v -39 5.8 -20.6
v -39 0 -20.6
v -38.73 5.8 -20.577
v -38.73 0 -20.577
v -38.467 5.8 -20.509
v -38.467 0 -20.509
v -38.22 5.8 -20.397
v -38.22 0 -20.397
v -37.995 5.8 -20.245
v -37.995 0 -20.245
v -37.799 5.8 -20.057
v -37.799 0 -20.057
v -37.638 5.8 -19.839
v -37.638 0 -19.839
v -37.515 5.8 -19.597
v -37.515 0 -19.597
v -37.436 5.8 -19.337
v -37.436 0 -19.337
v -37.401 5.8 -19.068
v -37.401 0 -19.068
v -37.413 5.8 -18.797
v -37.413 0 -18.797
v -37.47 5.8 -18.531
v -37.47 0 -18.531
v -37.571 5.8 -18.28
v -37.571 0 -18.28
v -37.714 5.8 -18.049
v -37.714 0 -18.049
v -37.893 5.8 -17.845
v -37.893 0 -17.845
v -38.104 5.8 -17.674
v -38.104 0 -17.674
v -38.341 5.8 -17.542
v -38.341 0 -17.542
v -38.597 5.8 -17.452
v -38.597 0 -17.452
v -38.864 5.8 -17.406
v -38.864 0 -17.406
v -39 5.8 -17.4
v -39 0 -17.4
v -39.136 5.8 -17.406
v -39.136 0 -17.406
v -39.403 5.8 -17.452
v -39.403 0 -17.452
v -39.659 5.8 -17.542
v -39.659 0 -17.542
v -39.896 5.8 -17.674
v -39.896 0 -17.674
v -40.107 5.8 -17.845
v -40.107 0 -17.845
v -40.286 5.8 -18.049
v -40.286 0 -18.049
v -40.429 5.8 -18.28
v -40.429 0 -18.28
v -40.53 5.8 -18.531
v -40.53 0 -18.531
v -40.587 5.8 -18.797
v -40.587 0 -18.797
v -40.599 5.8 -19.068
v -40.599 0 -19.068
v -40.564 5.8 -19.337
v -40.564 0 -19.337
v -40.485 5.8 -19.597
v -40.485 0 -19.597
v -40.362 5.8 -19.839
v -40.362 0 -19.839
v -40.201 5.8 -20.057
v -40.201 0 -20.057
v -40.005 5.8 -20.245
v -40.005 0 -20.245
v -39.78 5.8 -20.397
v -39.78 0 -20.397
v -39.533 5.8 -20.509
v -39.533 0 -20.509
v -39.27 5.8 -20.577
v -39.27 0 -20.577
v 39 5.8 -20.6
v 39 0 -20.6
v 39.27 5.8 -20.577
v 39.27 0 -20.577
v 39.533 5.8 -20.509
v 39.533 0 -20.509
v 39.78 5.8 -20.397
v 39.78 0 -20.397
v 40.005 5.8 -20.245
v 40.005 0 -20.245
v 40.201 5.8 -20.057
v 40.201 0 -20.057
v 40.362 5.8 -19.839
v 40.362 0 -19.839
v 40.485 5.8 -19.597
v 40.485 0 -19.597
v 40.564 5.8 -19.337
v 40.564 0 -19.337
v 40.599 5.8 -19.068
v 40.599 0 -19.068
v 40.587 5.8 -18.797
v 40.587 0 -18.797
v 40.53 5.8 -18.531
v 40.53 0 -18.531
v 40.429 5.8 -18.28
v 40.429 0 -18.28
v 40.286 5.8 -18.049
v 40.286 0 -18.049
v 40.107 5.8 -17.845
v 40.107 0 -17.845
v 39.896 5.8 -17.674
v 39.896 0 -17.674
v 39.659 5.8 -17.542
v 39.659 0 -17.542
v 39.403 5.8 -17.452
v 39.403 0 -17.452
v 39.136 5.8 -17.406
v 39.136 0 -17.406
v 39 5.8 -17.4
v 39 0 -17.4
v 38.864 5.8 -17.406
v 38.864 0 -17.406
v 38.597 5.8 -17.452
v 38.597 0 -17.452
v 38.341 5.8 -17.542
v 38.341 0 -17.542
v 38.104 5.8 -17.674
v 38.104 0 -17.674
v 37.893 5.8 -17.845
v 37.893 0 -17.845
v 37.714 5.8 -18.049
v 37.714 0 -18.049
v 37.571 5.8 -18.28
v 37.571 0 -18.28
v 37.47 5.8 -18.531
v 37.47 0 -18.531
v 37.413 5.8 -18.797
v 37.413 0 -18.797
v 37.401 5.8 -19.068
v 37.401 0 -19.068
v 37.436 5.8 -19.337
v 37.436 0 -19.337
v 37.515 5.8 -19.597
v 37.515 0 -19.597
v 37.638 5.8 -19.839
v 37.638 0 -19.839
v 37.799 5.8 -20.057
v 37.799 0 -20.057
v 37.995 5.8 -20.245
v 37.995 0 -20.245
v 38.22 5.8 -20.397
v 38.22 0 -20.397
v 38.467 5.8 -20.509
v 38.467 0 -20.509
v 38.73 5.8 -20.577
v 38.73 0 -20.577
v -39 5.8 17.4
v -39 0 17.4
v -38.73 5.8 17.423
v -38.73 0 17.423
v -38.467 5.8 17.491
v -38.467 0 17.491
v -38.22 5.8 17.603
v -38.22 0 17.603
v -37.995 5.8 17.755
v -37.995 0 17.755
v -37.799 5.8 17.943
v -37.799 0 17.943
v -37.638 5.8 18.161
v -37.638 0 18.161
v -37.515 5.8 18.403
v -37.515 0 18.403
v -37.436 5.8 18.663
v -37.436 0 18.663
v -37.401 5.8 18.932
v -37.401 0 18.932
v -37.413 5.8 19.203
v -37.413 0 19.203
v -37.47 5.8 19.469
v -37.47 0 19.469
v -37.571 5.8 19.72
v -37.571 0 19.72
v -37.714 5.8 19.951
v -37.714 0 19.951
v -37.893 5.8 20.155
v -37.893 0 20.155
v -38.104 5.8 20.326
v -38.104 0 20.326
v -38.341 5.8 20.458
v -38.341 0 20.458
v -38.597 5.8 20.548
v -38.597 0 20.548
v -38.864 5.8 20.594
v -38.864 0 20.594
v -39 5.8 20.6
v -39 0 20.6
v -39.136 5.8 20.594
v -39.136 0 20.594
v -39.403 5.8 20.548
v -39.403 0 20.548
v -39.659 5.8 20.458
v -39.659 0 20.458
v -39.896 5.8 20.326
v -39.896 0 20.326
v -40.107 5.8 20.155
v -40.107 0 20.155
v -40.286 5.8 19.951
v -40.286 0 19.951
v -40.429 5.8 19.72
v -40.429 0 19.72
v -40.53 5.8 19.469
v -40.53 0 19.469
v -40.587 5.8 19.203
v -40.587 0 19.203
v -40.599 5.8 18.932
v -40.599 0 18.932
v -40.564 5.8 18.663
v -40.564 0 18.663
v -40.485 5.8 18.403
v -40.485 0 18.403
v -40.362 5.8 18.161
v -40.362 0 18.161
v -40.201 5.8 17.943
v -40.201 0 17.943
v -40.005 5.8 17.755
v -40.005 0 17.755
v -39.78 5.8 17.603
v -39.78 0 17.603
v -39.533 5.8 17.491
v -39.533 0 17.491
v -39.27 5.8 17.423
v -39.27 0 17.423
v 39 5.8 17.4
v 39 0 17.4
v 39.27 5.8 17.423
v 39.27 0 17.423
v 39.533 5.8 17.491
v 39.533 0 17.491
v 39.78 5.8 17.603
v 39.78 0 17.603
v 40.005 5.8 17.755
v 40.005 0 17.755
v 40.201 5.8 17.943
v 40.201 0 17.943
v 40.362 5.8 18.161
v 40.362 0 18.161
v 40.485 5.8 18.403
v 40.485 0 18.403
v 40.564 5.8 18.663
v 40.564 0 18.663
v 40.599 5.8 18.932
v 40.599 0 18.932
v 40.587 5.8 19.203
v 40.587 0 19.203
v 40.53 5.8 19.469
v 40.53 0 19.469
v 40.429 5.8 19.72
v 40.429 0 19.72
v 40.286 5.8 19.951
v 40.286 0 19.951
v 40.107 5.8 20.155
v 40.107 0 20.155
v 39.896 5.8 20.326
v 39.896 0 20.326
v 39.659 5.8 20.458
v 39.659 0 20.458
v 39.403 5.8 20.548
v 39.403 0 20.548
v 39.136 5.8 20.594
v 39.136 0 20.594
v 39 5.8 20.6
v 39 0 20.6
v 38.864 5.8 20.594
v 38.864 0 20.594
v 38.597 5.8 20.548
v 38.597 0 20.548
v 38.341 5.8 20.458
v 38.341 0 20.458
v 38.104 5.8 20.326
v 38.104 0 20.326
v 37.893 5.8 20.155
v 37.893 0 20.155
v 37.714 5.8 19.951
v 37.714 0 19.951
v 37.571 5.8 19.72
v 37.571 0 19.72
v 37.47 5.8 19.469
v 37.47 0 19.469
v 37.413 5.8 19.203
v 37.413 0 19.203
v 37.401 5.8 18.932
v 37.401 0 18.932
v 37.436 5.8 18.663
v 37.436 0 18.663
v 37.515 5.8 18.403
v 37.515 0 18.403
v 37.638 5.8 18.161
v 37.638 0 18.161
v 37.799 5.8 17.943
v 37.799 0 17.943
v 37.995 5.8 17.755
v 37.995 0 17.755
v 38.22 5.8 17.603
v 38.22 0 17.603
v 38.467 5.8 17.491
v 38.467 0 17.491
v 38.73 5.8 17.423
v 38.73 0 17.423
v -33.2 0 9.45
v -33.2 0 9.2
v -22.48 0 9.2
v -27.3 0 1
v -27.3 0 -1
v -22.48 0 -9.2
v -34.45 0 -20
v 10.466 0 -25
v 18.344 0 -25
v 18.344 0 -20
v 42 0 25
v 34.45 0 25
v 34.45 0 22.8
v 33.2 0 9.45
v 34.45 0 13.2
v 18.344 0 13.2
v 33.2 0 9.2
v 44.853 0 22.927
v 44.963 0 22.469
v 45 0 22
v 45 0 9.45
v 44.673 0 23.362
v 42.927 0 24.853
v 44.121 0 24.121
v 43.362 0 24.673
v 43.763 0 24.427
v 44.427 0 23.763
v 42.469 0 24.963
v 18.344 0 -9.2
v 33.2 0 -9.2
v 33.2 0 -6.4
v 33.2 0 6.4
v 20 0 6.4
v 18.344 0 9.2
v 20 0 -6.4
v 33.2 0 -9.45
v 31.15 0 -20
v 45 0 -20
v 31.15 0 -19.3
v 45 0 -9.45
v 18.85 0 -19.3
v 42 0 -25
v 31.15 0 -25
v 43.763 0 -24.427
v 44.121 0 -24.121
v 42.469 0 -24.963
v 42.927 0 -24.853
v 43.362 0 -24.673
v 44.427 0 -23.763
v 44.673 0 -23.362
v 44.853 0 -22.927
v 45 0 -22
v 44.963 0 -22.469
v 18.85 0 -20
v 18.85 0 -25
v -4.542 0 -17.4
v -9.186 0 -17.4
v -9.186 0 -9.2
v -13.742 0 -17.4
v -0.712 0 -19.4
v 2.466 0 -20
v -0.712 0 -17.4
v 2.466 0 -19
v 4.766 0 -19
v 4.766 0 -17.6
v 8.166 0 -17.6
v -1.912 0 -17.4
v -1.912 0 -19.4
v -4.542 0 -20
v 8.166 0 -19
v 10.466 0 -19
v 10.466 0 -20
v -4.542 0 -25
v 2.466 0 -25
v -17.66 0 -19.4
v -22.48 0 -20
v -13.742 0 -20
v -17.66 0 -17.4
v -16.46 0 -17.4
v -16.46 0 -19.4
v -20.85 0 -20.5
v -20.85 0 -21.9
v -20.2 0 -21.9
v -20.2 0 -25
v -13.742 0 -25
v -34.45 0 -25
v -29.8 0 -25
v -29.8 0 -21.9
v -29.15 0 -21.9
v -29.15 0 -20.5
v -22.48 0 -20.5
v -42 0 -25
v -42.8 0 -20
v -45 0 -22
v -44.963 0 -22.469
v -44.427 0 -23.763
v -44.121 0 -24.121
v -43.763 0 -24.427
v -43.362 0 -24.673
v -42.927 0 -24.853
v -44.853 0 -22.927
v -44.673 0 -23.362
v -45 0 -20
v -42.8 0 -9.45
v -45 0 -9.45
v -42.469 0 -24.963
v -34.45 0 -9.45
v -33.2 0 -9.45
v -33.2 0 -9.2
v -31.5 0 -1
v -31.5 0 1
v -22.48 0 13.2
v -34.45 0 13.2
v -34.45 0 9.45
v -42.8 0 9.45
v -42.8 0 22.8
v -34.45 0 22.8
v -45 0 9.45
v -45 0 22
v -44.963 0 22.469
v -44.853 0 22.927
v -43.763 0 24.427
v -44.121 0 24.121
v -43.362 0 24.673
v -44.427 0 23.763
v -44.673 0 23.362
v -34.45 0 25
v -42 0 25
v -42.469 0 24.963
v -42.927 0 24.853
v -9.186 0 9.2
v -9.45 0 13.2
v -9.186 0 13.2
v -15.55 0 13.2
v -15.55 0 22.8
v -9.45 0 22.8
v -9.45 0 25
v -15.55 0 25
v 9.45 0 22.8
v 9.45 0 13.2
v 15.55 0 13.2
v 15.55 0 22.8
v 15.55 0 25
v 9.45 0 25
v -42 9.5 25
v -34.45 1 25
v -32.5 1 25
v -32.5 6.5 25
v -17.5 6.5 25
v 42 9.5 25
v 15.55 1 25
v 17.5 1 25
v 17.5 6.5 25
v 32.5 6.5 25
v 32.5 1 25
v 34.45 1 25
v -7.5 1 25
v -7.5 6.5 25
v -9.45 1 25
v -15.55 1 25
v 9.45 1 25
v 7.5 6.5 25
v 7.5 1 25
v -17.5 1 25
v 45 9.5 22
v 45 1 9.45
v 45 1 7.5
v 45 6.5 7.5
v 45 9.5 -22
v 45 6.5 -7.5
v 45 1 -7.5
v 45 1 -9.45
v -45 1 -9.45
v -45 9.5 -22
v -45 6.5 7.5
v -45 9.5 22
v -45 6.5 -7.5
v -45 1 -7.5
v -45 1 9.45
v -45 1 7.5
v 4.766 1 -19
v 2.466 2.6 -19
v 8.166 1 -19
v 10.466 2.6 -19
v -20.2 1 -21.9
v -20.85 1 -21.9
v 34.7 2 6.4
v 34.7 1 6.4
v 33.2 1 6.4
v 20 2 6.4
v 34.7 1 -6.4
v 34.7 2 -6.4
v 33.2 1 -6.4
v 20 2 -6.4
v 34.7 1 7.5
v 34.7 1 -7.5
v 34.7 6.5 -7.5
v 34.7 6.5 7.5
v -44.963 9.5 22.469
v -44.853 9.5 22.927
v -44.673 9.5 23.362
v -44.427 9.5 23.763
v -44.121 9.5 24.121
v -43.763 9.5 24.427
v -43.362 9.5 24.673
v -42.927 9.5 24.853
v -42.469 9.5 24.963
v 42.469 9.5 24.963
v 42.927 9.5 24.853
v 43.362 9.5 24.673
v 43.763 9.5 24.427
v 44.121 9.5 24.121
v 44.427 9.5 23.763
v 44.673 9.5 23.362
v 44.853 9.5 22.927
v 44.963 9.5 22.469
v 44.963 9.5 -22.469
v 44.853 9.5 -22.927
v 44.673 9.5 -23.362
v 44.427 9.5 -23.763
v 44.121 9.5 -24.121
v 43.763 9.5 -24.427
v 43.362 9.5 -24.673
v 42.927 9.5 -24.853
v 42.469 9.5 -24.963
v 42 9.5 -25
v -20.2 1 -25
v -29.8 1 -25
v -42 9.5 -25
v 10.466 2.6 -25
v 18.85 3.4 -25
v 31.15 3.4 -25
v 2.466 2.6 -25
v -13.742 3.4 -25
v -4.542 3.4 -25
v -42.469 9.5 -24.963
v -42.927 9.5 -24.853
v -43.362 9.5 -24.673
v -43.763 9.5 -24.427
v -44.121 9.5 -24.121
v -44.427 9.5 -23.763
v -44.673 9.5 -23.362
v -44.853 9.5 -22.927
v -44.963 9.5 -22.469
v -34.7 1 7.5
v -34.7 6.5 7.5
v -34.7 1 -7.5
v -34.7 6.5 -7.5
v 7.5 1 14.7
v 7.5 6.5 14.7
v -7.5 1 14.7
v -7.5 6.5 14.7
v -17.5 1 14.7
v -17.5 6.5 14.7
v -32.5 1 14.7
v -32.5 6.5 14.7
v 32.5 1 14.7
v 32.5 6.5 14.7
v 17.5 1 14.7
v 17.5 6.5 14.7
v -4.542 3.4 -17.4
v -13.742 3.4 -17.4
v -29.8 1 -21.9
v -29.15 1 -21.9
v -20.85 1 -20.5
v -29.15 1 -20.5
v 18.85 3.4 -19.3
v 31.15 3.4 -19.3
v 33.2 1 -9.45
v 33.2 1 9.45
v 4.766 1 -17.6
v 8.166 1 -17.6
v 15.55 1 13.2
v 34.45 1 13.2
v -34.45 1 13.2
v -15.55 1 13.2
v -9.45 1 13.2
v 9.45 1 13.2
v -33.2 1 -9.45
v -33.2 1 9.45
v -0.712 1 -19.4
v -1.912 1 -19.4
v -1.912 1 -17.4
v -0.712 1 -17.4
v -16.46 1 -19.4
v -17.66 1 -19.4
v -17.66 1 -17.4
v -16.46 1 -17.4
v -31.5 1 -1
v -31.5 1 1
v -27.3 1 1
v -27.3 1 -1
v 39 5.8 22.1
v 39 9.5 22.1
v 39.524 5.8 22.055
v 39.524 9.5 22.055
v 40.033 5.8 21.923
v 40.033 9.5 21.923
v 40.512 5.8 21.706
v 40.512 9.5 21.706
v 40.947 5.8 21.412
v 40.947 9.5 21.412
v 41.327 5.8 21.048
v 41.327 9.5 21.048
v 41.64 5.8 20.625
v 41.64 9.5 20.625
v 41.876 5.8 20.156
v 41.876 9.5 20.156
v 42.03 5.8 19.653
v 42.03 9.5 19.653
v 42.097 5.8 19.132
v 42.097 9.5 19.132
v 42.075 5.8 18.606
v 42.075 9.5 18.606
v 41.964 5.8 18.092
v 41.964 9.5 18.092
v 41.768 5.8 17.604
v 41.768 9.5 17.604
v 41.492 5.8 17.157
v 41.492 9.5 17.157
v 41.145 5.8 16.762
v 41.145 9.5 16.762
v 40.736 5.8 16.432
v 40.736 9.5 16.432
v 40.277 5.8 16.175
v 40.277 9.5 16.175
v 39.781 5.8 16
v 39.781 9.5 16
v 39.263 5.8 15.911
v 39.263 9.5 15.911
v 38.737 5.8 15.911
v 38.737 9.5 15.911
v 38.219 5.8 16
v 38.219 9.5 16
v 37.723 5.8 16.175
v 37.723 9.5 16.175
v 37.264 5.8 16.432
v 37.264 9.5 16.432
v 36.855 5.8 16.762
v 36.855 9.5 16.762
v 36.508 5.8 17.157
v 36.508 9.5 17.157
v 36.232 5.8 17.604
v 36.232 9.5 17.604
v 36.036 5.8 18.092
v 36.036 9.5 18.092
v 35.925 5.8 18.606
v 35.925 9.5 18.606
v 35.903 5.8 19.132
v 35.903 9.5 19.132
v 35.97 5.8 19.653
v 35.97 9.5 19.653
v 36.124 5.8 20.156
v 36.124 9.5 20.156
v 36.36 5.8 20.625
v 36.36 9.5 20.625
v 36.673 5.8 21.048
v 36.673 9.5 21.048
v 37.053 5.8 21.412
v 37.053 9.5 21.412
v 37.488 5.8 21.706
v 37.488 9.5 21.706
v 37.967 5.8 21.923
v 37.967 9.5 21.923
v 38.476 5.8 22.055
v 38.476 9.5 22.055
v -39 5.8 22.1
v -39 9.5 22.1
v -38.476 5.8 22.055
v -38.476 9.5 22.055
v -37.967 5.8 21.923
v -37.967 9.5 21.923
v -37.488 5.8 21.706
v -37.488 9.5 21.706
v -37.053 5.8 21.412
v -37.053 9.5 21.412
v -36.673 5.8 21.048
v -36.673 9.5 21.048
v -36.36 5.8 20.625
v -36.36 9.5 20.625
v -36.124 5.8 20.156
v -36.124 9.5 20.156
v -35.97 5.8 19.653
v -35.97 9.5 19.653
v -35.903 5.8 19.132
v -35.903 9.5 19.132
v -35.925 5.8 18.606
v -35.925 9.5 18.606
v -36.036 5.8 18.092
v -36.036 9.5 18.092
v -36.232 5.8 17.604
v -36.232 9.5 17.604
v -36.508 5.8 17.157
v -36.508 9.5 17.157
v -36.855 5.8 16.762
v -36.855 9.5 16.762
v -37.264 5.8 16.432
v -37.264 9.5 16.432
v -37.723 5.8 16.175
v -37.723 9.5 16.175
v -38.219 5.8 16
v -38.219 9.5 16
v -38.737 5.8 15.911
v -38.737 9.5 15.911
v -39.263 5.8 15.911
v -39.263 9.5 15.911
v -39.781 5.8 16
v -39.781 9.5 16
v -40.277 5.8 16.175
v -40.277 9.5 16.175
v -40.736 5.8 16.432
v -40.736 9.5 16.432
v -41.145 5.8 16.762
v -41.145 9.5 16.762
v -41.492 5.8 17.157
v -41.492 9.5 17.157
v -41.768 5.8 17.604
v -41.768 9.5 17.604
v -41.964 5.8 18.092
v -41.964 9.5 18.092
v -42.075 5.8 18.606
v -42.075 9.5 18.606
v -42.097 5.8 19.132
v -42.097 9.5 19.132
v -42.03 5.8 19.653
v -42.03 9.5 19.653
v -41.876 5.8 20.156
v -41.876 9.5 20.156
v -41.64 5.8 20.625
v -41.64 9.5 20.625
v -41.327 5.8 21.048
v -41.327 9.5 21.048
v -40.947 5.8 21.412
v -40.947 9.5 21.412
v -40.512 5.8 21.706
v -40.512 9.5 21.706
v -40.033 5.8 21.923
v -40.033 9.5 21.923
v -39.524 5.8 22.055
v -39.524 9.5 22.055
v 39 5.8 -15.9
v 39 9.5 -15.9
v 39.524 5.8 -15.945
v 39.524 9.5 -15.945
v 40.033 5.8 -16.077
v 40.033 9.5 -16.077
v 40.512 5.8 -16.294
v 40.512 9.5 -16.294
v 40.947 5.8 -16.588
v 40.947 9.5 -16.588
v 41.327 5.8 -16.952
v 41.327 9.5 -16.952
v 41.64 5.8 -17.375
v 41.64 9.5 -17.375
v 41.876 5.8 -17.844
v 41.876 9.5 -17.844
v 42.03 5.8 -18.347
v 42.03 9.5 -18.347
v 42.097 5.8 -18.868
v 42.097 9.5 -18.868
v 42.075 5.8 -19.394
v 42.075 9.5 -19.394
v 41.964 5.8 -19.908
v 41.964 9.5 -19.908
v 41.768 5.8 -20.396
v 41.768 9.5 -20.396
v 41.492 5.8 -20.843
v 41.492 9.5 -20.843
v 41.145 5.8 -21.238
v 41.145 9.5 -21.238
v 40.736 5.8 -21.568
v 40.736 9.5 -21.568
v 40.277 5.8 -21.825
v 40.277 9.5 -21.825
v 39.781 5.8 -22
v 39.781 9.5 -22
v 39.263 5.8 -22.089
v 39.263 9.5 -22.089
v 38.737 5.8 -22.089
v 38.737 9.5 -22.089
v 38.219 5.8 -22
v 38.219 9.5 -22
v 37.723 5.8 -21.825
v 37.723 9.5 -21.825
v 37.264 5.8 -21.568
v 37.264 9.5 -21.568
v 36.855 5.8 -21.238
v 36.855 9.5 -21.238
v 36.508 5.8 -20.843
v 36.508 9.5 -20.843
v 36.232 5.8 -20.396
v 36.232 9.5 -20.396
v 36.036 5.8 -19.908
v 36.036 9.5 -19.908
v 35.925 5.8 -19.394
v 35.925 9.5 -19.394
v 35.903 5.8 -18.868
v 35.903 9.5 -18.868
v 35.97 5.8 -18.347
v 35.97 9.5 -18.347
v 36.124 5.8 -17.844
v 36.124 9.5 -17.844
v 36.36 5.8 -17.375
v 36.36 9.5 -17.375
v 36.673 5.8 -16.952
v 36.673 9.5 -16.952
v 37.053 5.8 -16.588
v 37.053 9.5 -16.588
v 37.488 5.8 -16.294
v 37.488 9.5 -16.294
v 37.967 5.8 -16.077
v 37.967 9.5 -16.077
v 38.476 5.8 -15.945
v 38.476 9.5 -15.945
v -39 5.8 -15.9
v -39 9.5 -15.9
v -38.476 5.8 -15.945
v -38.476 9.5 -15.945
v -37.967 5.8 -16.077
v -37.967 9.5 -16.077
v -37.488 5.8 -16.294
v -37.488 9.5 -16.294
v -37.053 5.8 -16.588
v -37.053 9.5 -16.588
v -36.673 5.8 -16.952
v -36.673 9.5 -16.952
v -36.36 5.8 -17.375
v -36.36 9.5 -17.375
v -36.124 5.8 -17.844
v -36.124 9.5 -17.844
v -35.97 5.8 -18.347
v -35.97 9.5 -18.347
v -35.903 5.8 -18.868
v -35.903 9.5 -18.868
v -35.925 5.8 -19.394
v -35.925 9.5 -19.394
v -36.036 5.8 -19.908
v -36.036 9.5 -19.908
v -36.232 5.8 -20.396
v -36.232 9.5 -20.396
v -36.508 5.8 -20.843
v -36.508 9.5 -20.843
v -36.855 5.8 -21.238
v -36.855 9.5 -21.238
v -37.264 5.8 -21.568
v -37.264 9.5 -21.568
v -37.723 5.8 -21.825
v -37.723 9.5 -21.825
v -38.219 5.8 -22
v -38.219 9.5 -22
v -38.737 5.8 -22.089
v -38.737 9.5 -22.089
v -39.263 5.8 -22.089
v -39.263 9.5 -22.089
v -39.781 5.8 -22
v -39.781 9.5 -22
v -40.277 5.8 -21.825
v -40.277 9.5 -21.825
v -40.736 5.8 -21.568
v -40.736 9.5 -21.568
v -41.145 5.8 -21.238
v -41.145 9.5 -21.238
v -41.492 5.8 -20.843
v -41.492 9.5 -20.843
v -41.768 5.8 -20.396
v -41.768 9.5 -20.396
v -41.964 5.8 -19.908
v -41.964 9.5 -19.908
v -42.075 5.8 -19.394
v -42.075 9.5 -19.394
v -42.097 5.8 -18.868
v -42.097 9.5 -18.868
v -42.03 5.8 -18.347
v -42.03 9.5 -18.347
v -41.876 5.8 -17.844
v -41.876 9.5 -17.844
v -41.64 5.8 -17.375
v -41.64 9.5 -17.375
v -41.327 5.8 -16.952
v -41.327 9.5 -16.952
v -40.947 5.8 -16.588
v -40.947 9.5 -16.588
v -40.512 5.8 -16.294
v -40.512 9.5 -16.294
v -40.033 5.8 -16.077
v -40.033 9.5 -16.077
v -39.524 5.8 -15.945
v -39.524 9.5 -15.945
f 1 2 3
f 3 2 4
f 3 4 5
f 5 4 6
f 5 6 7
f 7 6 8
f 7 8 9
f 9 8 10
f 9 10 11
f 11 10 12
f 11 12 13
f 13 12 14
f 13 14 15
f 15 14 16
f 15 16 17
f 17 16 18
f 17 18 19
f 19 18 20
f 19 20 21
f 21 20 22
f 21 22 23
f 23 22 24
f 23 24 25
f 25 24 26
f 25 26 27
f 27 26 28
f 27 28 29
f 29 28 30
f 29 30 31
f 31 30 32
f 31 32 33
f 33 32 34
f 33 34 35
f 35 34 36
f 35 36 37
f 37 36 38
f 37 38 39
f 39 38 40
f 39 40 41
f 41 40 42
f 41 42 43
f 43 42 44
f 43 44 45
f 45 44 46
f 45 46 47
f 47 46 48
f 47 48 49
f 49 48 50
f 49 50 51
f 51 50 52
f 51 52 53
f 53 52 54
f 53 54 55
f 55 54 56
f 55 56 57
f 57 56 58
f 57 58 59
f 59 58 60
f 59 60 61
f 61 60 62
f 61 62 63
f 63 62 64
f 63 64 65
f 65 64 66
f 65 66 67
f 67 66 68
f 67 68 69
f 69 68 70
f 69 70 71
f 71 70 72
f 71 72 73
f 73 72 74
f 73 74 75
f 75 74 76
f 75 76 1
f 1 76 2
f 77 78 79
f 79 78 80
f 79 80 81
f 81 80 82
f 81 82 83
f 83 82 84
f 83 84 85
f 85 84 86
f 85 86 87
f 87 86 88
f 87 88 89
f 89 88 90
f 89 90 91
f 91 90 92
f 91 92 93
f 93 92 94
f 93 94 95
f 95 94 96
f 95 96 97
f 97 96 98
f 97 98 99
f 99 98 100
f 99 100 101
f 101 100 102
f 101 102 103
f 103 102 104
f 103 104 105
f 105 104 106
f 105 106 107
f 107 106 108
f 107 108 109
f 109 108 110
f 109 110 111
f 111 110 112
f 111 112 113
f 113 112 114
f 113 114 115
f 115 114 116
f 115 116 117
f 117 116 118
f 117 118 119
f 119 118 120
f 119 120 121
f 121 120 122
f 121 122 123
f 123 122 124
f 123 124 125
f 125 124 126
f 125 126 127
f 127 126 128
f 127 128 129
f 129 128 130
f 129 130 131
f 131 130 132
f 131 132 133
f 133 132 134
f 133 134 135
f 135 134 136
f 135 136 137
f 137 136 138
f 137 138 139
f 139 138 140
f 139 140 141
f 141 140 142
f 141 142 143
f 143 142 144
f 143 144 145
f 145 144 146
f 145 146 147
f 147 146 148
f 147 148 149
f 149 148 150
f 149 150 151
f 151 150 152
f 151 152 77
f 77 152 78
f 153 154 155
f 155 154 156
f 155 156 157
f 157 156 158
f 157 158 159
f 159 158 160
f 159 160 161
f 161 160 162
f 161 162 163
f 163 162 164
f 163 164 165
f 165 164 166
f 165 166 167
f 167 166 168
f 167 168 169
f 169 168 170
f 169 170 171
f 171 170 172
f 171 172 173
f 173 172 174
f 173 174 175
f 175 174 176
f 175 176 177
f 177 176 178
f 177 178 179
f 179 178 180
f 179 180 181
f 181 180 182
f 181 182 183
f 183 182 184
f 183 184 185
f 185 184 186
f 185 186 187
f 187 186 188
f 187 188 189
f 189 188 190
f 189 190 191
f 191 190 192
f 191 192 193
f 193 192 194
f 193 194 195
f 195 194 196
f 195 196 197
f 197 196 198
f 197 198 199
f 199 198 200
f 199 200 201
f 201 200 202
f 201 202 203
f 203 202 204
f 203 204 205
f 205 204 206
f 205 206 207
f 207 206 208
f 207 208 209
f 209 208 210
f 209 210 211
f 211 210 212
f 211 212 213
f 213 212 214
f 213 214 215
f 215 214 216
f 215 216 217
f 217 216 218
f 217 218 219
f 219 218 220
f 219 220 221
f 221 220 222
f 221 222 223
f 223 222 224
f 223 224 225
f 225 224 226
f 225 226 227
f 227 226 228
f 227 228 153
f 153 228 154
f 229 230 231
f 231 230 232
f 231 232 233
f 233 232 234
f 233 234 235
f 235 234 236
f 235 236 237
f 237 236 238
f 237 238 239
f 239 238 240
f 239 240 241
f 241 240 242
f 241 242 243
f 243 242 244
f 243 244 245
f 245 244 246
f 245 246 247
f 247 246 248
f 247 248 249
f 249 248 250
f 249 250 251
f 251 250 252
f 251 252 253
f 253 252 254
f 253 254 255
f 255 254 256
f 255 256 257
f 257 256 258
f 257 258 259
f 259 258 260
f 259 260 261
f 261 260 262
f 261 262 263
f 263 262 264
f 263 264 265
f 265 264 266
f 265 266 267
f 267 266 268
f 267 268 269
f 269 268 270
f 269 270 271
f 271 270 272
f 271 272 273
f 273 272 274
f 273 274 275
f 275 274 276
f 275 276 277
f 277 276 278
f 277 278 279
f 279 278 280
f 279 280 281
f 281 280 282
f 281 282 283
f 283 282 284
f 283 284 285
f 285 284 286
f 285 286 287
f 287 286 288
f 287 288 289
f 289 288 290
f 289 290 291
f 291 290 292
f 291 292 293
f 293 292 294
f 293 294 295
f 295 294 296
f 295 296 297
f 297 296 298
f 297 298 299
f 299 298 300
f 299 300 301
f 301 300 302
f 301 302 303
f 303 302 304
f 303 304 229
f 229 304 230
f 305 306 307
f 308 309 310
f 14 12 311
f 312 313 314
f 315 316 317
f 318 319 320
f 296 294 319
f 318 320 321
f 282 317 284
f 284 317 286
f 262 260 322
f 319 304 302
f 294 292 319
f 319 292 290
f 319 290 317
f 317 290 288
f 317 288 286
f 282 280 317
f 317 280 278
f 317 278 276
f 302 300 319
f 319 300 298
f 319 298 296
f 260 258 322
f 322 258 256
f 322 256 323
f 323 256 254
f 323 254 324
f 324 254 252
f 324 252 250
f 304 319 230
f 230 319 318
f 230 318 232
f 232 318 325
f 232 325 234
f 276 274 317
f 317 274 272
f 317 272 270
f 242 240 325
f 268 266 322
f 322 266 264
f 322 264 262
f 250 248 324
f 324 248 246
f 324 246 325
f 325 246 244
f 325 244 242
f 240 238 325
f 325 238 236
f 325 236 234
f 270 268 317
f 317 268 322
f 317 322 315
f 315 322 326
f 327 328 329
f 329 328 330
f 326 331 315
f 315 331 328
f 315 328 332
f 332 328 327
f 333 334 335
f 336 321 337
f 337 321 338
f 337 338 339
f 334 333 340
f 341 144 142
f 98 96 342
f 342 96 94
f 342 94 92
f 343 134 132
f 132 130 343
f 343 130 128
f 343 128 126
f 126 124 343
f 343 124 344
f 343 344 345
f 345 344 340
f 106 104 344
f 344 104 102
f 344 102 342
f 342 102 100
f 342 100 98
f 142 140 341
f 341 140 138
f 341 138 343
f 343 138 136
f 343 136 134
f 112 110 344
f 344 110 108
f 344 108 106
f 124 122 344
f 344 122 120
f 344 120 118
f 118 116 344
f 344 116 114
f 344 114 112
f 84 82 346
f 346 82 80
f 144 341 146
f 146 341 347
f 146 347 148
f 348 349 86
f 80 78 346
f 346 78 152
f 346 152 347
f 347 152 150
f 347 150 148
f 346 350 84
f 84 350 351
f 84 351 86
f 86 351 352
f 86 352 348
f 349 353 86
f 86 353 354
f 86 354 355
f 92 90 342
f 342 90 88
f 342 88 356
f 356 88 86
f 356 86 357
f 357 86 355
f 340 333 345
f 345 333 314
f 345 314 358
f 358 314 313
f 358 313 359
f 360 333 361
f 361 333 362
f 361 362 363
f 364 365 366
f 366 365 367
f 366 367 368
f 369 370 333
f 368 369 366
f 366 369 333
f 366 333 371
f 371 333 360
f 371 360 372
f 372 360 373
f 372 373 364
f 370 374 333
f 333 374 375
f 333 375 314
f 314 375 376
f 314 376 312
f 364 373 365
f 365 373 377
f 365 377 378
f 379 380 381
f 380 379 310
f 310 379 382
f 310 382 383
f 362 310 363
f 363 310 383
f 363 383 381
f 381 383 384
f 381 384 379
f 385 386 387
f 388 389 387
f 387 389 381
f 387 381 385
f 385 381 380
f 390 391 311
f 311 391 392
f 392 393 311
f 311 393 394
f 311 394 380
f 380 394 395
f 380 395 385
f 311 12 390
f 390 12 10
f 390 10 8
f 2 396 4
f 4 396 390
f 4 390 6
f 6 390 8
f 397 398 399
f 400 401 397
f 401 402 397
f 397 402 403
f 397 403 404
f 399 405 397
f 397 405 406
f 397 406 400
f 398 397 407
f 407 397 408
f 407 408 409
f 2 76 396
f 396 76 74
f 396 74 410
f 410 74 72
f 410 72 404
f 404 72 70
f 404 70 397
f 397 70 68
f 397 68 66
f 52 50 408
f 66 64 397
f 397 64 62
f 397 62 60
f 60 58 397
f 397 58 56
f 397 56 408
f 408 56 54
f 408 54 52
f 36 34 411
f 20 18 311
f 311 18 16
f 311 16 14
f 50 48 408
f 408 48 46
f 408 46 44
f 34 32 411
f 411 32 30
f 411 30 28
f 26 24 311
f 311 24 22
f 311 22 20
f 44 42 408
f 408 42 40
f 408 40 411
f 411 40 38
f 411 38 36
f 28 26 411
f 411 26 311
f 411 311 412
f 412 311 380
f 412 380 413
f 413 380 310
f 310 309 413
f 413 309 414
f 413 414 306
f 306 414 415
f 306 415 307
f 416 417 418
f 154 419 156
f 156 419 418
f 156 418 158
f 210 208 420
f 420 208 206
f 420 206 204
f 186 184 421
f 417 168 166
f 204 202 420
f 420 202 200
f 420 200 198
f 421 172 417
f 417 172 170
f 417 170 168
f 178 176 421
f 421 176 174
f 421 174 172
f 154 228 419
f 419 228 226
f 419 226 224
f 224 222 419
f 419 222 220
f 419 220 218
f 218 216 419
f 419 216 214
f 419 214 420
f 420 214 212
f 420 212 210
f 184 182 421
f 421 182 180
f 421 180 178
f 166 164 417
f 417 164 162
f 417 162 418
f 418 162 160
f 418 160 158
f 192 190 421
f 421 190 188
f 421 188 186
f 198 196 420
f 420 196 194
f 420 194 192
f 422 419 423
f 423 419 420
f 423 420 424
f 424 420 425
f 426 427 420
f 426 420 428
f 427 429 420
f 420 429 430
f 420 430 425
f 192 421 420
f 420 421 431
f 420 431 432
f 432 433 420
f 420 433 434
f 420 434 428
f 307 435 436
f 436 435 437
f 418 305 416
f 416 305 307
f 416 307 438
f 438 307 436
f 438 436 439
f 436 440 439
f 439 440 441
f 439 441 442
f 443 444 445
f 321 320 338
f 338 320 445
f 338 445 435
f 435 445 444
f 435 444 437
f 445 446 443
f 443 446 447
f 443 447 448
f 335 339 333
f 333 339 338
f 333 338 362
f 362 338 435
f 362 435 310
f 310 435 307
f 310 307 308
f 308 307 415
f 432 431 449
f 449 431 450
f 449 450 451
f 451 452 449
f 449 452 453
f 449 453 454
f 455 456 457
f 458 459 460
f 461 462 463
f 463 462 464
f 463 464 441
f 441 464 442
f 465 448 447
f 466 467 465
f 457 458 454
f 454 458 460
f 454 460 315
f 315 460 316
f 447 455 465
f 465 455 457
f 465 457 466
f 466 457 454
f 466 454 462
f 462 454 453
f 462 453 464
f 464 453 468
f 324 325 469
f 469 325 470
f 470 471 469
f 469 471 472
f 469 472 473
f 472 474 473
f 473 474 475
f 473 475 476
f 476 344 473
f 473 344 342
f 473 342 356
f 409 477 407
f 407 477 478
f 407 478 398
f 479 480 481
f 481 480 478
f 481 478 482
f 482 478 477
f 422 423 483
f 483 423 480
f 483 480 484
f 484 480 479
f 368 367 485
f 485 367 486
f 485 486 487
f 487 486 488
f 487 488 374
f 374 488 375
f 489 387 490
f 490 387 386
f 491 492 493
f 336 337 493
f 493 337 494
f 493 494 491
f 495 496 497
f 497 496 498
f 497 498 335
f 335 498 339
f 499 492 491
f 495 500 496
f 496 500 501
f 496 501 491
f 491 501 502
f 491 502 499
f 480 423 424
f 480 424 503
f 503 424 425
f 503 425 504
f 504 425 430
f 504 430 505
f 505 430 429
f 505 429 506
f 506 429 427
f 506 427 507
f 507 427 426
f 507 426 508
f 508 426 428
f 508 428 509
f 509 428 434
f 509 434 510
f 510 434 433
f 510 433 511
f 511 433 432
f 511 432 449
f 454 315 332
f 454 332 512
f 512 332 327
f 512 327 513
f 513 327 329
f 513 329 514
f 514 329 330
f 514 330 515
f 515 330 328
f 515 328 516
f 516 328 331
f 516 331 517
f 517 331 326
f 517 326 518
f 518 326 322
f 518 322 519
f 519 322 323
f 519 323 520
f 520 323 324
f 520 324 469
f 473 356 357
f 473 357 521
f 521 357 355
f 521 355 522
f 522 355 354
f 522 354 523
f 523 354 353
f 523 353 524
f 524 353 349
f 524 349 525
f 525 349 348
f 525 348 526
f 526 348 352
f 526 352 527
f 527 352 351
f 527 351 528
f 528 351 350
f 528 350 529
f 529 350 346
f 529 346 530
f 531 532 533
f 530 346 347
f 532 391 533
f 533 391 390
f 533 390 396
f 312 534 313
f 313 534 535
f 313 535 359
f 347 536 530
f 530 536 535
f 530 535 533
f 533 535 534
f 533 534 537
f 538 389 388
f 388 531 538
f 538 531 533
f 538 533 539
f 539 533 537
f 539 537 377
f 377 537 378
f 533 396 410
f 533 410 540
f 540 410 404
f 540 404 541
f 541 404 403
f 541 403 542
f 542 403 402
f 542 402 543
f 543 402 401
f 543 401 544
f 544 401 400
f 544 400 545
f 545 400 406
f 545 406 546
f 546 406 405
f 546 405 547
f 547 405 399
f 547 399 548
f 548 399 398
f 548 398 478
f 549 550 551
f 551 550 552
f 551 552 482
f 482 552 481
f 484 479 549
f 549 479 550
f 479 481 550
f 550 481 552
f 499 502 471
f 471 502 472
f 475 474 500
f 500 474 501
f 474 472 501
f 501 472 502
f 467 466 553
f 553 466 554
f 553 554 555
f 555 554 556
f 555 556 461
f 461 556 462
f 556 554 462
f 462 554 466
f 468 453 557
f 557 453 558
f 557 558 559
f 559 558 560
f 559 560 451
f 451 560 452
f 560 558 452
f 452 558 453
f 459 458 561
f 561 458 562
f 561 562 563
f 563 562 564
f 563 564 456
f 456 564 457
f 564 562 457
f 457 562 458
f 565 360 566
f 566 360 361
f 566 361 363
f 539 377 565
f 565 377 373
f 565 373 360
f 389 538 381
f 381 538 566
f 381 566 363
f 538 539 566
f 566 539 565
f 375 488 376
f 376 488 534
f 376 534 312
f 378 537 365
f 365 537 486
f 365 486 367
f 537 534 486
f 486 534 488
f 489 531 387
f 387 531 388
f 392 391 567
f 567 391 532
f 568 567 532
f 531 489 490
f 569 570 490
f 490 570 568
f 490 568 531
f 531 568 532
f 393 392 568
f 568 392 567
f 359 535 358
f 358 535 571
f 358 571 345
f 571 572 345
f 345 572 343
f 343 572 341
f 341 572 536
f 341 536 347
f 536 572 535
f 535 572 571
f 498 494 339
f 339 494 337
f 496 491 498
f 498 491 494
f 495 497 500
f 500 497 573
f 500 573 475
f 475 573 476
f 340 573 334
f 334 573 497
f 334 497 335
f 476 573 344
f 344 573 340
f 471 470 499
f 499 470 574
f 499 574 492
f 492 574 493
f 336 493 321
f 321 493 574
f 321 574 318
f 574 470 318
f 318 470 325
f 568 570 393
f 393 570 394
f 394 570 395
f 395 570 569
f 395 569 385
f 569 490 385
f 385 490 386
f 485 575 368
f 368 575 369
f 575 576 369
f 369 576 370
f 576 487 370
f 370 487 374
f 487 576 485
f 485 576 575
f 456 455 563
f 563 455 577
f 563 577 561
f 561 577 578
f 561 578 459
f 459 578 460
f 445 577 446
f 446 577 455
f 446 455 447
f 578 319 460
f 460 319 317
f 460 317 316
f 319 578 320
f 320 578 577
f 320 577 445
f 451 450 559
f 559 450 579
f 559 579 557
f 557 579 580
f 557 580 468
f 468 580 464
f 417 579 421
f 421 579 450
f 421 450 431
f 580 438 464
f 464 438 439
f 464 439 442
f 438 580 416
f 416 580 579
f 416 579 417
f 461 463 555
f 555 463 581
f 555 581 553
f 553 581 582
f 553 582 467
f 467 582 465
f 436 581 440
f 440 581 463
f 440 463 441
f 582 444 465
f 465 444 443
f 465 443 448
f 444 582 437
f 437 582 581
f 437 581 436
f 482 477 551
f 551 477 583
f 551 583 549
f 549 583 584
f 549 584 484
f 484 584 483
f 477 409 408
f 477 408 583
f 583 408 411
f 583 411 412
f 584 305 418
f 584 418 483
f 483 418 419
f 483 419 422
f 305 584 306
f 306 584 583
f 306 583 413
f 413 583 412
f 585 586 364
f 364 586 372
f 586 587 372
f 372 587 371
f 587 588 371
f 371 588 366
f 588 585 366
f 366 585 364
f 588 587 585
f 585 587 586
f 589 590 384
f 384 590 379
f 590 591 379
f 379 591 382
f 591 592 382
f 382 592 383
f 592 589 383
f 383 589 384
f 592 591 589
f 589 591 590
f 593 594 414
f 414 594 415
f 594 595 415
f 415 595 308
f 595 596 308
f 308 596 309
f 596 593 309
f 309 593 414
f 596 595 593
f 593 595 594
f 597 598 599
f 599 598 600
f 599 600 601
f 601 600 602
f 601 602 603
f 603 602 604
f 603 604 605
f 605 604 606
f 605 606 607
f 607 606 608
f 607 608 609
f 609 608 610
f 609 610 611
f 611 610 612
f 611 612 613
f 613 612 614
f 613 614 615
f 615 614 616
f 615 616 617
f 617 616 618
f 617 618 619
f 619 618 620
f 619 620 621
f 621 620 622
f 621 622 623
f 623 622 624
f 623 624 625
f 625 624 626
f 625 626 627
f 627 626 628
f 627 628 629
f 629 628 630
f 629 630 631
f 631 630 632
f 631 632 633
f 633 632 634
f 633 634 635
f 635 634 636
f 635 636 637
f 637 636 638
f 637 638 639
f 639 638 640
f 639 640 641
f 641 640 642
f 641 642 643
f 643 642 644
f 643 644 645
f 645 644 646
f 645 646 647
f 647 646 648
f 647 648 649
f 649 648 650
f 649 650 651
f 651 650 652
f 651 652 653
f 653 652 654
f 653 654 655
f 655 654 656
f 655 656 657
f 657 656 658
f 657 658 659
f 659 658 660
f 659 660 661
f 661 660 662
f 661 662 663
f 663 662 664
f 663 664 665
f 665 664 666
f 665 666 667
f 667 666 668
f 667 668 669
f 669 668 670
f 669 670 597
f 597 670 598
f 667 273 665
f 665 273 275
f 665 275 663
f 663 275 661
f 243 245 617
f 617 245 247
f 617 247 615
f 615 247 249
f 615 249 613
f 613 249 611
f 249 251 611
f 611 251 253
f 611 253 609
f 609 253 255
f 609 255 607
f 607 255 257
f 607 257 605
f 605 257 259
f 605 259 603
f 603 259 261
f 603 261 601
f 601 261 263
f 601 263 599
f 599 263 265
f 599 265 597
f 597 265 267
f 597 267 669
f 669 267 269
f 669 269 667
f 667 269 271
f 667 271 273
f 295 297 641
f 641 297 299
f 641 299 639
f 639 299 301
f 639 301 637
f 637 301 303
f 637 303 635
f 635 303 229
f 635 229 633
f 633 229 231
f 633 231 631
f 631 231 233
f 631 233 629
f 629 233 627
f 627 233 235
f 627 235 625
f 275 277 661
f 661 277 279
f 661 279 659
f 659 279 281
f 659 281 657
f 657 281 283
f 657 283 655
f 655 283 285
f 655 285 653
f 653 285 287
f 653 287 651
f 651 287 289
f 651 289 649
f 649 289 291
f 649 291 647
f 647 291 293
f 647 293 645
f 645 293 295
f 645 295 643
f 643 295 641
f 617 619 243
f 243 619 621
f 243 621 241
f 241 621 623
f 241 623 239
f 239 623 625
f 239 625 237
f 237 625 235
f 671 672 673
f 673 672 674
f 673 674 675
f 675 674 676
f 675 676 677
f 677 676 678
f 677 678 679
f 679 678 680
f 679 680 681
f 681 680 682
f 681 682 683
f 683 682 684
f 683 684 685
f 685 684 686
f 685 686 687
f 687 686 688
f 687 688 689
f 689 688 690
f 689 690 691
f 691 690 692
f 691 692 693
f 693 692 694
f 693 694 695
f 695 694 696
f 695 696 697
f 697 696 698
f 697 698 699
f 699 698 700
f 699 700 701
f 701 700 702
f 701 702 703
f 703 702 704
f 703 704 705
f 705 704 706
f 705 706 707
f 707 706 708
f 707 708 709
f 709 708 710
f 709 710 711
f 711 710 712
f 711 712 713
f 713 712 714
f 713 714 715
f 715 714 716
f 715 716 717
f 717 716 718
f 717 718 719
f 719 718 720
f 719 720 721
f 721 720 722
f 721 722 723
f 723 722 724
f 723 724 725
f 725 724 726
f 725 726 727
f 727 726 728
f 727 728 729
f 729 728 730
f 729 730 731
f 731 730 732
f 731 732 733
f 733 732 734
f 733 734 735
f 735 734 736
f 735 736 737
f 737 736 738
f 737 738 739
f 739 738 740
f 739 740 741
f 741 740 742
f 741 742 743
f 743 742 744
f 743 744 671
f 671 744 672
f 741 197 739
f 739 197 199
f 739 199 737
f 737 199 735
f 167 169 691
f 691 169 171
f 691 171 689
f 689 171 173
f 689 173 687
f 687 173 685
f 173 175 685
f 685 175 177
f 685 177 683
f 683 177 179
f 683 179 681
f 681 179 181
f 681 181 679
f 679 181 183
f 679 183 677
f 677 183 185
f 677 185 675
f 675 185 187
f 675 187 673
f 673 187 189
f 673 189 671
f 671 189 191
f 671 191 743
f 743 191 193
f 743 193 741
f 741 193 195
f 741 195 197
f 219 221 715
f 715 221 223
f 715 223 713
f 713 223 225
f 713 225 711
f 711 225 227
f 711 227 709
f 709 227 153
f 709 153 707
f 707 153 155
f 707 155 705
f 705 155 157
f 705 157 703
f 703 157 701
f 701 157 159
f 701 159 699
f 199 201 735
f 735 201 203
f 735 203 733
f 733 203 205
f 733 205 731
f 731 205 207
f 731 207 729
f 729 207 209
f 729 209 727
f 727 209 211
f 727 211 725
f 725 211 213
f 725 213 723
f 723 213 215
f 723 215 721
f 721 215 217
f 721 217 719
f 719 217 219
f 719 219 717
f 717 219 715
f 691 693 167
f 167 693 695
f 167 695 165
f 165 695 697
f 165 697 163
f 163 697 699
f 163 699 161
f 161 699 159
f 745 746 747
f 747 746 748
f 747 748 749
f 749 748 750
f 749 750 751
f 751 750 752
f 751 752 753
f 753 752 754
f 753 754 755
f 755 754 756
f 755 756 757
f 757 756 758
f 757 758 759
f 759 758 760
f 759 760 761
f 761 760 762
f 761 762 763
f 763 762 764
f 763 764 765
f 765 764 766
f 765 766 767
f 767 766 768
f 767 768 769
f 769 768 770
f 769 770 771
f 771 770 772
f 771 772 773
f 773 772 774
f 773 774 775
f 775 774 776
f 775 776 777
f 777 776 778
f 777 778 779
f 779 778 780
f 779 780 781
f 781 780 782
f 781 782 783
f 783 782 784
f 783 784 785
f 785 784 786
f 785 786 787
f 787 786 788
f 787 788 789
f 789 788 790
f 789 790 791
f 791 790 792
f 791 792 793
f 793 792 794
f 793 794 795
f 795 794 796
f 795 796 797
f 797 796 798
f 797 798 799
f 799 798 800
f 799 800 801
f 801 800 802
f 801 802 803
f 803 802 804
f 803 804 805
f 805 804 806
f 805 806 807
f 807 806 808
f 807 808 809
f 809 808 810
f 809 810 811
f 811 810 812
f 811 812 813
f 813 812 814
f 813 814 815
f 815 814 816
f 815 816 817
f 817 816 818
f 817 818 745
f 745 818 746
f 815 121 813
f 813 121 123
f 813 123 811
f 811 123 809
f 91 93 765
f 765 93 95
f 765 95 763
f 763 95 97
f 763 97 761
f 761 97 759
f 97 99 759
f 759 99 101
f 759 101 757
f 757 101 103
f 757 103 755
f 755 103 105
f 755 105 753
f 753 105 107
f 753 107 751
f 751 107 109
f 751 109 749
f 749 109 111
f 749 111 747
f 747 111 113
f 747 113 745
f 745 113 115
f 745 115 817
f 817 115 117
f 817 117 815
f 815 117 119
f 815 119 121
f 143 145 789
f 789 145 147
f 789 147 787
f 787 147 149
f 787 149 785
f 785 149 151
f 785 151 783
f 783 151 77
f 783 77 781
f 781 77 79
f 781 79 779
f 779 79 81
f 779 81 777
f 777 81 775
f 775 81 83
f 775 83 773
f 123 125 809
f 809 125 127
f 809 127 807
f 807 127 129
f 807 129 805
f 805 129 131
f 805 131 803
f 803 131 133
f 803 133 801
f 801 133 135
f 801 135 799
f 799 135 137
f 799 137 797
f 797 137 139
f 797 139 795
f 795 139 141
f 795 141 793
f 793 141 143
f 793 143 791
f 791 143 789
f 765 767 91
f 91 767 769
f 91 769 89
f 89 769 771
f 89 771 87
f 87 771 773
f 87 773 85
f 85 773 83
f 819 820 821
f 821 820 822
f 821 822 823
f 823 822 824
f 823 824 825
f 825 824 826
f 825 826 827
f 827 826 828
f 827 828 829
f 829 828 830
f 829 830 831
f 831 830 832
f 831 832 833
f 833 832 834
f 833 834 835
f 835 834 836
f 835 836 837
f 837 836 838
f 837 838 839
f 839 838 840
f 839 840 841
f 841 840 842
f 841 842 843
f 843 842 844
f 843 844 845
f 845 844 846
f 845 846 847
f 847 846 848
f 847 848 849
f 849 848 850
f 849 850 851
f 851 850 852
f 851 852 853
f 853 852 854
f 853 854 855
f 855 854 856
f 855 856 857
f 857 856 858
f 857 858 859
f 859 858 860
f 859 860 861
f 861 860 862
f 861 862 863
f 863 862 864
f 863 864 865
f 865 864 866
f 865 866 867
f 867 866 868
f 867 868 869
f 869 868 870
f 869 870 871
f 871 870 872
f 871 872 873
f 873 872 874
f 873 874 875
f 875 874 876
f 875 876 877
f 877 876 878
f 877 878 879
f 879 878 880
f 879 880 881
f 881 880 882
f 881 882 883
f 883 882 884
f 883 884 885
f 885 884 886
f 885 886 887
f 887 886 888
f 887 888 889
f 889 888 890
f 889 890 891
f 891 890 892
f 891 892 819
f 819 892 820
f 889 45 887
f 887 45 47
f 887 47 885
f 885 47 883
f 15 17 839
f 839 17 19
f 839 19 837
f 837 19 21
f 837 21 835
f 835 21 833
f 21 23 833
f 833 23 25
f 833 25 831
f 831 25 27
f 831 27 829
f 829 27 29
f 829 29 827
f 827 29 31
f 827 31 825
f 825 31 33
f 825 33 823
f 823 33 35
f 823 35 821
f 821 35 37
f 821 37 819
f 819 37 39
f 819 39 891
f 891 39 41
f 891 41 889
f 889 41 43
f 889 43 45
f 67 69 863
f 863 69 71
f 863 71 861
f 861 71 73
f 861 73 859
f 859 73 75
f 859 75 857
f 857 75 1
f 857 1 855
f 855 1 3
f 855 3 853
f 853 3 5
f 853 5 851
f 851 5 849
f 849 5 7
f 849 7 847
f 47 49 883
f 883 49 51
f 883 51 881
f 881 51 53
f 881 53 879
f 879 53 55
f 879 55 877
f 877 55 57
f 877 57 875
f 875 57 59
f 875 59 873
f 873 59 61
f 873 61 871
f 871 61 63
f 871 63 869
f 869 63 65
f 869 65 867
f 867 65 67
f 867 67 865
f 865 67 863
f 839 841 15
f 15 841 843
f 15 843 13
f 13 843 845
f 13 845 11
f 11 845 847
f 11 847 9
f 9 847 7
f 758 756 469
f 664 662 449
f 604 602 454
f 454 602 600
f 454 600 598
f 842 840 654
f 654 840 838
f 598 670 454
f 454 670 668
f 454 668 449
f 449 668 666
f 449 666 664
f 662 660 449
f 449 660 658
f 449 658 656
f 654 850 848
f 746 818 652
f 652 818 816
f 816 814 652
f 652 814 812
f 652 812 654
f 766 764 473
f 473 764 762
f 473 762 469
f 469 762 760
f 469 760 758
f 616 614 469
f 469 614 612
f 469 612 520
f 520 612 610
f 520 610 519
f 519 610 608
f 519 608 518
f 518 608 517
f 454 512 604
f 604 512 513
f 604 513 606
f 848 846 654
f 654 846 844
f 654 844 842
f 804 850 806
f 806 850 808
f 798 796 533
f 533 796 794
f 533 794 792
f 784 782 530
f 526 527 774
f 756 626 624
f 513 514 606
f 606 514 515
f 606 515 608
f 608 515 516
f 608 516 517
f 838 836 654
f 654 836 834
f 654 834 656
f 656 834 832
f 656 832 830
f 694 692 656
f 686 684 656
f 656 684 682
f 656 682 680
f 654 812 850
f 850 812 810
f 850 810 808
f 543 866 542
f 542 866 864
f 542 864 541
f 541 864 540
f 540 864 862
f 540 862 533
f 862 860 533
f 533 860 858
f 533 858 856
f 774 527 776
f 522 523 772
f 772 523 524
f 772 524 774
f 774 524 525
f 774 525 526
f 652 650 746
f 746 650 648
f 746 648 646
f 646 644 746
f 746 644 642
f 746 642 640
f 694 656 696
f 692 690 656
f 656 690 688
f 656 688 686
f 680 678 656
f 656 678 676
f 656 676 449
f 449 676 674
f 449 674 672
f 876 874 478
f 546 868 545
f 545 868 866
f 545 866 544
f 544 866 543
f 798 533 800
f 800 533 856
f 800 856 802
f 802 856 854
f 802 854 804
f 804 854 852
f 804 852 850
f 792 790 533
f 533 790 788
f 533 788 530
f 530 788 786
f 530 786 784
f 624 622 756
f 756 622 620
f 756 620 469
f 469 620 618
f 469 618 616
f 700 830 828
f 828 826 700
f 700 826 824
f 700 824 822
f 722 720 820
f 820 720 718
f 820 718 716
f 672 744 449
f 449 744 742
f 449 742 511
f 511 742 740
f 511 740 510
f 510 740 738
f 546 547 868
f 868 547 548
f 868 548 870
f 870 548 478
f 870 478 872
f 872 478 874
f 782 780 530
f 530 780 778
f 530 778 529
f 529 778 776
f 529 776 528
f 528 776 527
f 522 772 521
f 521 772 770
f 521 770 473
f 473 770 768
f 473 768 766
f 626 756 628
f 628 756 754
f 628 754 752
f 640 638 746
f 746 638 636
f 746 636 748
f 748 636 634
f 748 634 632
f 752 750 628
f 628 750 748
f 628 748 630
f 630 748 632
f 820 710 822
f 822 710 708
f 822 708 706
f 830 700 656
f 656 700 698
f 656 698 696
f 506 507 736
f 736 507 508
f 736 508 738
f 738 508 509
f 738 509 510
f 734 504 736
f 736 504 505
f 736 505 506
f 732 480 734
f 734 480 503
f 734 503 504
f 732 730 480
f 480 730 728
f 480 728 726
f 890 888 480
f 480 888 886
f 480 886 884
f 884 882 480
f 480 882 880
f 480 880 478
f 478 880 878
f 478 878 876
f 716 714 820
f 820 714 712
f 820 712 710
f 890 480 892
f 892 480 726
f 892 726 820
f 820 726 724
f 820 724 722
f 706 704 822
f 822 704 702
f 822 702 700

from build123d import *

# Parameters (mm, degrees)
SKETCH_1_R          = 1.6
EXTRUDE_1_DEPTH     = 8.5
CUT_EXTRUDE_START   = -8.5
SKETCH_2_W          = 15
SKETCH_2_H          = 10.3
SKETCH_2_W_2        = 10.3
SKETCH_2_H_2        = 15
CUT_EXTRUDE_1_DEPTH = 6.5
SKETCH_3_W          = 9.2
SKETCH_3_H          = 7.6
CUT_EXTRUDE_2_DEPTH = 3.4
SKETCH_4_W          = 8
SKETCH_4_H          = 6
CUT_EXTRUDE_3_DEPTH = 2.6
SKETCH_7_W          = 9.6
SKETCH_7_H          = 11.1
CUT_EXTRUDE_4_DEPTH = 1
SKETCH_8_W          = 12.3
SKETCH_8_H          = 5.7
CUT_EXTRUDE_5_DEPTH = 3.4
SKETCH_8_3_W        = 14.7
SKETCH_8_3_H        = 12.8
CUT_EXTRUDE_6_DEPTH = 2
SKETCH_8_4_W        = 11.8
SKETCH_8_4_H        = 18.9
SKETCH_8_4_W_2      = 4.2
SKETCH_8_4_H_2      = 2
SKETCH_8_4_W_3      = 8.3
SKETCH_8_4_H_3      = 1.4
SKETCH_8_4_W_4      = 1.2
SKETCH_8_4_W_5      = 3.4
SKETCH_8_4_W_6      = 18.9
SKETCH_8_4_H_4      = 11.8
CUT_EXTRUDE_7_DEPTH = 1
SKETCH_9_R          = 3.1
CUT_EXTRUDE_8_DEPTH = 2.7
SKETCH_10_R         = 3.1
EXTRUDE_2_DEPTH     = 1


with BuildPart() as part:
    # 草图1 → 凸台-拉伸1 (new body)
    with BuildSketch(Plane(origin=(0, 0, 0), x_dir=(1, 0, 0), z_dir=(0, 1, 0))):
        with BuildLine():
            Line((-42, -25), (42, -25))
            ThreePointArc((42, -25), (44.121320344, -24.121320344), (45, -22))
            Line((45, -22), (45, 22))
            ThreePointArc((45, 22), (44.121320344, 24.121320344), (42, 25))
            Line((42, 25), (-42, 25))
            ThreePointArc((-42, 25), (-44.121320344, 24.121320344), (-45, 22))
            Line((-45, 22), (-45, -22))
            ThreePointArc((-45, -22), (-44.121320344, -24.121320344), (-42, -25))
        make_face()
        with Locations(Location((-39, 19, 0), (0, 0, 270))):
            Circle(SKETCH_1_R, mode=Mode.SUBTRACT)
        with Locations(Location((39, 19, 0), (0, 0, 270))):
            Circle(SKETCH_1_R, mode=Mode.SUBTRACT)
        with Locations(Location((-39, -19, 0), (0, 0, 270))):
            Circle(SKETCH_1_R, mode=Mode.SUBTRACT)
        with Locations(Location((39, -19, 0), (0, 0, 270))):
            Circle(SKETCH_1_R, mode=Mode.SUBTRACT)
    extrude(amount=EXTRUDE_1_DEPTH)

    # 草图2 → 切除-拉伸1 (cut)
    with BuildSketch(Plane(origin=(0, 8.5, 0), x_dir=(1, 0, 0), z_dir=(0, 1, 0)).offset(CUT_EXTRUDE_START)):
        with Locations((0, -19.85)):
            Rectangle(SKETCH_2_W, SKETCH_2_H)
        with Locations((-25, -19.85)):
            Rectangle(SKETCH_2_W, SKETCH_2_H)
        with Locations((25, -19.85)):
            Rectangle(SKETCH_2_W, SKETCH_2_H)
        with Locations((-39.85, 0)):
            Rectangle(SKETCH_2_W_2, SKETCH_2_H_2)
        with Locations((39.85, 0)):
            Rectangle(SKETCH_2_W_2, SKETCH_2_H_2)
    extrude(amount=CUT_EXTRUDE_1_DEPTH, mode=Mode.SUBTRACT)

    # 草图3 → 切除-拉伸2 (cut)
    with BuildSketch(Plane(origin=(0, 8.5, 0), x_dir=(1, 0, 0), z_dir=(0, 1, 0)).offset(CUT_EXTRUDE_START)):
        with Locations((-9.142, 21.2)):
            Rectangle(SKETCH_3_W, SKETCH_3_H)
    extrude(amount=CUT_EXTRUDE_2_DEPTH, mode=Mode.SUBTRACT)

    # 草图4 → 切除-拉伸3 (cut)
    with BuildSketch(Plane(origin=(0, 8.5, 0), x_dir=(1, 0, 0), z_dir=(0, 1, 0)).offset(CUT_EXTRUDE_START)):
        with Locations((6.466, 22)):
            Rectangle(SKETCH_4_W, SKETCH_4_H)
    extrude(amount=CUT_EXTRUDE_3_DEPTH, mode=Mode.SUBTRACT)

    # 草图7 → 切除-拉伸4 (cut)
    with BuildSketch(Plane(origin=(0, 8.5, 0), x_dir=(1, 0, 0), z_dir=(0, 1, 0)).offset(CUT_EXTRUDE_START)):
        with Locations((-25, 27.45)):
            Rectangle(SKETCH_7_W, SKETCH_7_H)
    extrude(amount=CUT_EXTRUDE_4_DEPTH, mode=Mode.SUBTRACT)

    # 草图8 → 切除-拉伸5 (cut)
    with BuildSketch(Plane.XZ):
        with Locations((25, -22.15)):
            Rectangle(SKETCH_8_W, SKETCH_8_H)
    extrude(amount=-CUT_EXTRUDE_5_DEPTH, mode=Mode.SUBTRACT)

    # 草图8<3> → 切除-拉伸6 (cut)
    with BuildSketch(Plane.XZ):
        with Locations((27.35, 0)):
            Rectangle(SKETCH_8_3_W, SKETCH_8_3_H)
    extrude(amount=-CUT_EXTRUDE_6_DEPTH, mode=Mode.SUBTRACT)

    # 草图8<4> → 切除-拉伸7 (cut)
    with BuildSketch(Plane.XZ):
        with Locations((-39.1, 0)):
            Rectangle(SKETCH_8_4_W, SKETCH_8_4_H)
        with Locations((-29.4, 0)):
            Rectangle(SKETCH_8_4_W_2, SKETCH_8_4_H_2)
        with Locations((-25, -21.2)):
            Rectangle(SKETCH_8_4_W_3, SKETCH_8_4_H_3)
        with Locations((-17.06, -18.4)):
            Rectangle(SKETCH_8_4_W_4, SKETCH_8_4_H_2)
        with Locations((-1.312, -18.4)):
            Rectangle(SKETCH_8_4_W_4, SKETCH_8_4_H_2)
        with Locations((6.466, -18.3)):
            Rectangle(SKETCH_8_4_W_5, SKETCH_8_4_H_3)
        with Locations((39.1, 0)):
            Rectangle(SKETCH_8_4_W, SKETCH_8_4_H)
        with Locations((-25, 19.1)):
            Rectangle(SKETCH_8_4_W_6, SKETCH_8_4_H_4)
        with Locations((0, 19.1)):
            Rectangle(SKETCH_8_4_W_6, SKETCH_8_4_H_4)
        with Locations((25, 19.1)):
            Rectangle(SKETCH_8_4_W_6, SKETCH_8_4_H_4)
    extrude(amount=-CUT_EXTRUDE_7_DEPTH, mode=Mode.SUBTRACT)

    # 草图9 → 切除-拉伸8 (cut)
    with BuildSketch(Plane(origin=(0, 8.5, 0), x_dir=(1, 0, 0), z_dir=(0, 1, 0))):
        with Locations(Location((-39, 19, 0), (0, 0, 270))):
            Circle(SKETCH_9_R)
        with Locations(Location((-39, -19, 0), (0, 0, 270))):
            Circle(SKETCH_9_R)
        with Locations(Location((39, 19, 0), (0, 0, 270))):
            Circle(SKETCH_9_R)
        with Locations(Location((39, -19, 0), (0, 0, 270))):
            Circle(SKETCH_9_R)
    extrude(amount=-CUT_EXTRUDE_8_DEPTH, mode=Mode.SUBTRACT)

    # 草图10 → 凸台-拉伸2 (add)
    with BuildSketch(Plane(origin=(0, 8.5, 0), x_dir=(1, 0, 0), z_dir=(0, 1, 0))):
        with BuildLine():
            Line((-42, -25), (42, -25))
            ThreePointArc((42, -25), (44.121320344, -24.121320344), (45, -22))
            Line((45, -22), (45, 22))
            ThreePointArc((45, 22), (44.121320344, 24.121320344), (42, 25))
            Line((42, 25), (-42, 25))
            ThreePointArc((-42, 25), (-44.121320344, 24.121320344), (-45, 22))
            Line((-45, 22), (-45, -22))
            ThreePointArc((-45, -22), (-44.121320344, -24.121320344), (-42, -25))
        make_face()
        with Locations(Location((39, -19, 0), (0, 0, 270))):
            Circle(SKETCH_10_R, mode=Mode.SUBTRACT)
        with Locations(Location((39, 19, 0), (0, 0, 270))):
            Circle(SKETCH_10_R, mode=Mode.SUBTRACT)
        with Locations(Location((-39, -19, 0), (0, 0, 270))):
            Circle(SKETCH_10_R, mode=Mode.SUBTRACT)
        with Locations(Location((-39, 19, 0), (0, 0, 270))):
            Circle(SKETCH_10_R, mode=Mode.SUBTRACT)
    extrude(amount=EXTRUDE_2_DEPTH)


solid = part.part
